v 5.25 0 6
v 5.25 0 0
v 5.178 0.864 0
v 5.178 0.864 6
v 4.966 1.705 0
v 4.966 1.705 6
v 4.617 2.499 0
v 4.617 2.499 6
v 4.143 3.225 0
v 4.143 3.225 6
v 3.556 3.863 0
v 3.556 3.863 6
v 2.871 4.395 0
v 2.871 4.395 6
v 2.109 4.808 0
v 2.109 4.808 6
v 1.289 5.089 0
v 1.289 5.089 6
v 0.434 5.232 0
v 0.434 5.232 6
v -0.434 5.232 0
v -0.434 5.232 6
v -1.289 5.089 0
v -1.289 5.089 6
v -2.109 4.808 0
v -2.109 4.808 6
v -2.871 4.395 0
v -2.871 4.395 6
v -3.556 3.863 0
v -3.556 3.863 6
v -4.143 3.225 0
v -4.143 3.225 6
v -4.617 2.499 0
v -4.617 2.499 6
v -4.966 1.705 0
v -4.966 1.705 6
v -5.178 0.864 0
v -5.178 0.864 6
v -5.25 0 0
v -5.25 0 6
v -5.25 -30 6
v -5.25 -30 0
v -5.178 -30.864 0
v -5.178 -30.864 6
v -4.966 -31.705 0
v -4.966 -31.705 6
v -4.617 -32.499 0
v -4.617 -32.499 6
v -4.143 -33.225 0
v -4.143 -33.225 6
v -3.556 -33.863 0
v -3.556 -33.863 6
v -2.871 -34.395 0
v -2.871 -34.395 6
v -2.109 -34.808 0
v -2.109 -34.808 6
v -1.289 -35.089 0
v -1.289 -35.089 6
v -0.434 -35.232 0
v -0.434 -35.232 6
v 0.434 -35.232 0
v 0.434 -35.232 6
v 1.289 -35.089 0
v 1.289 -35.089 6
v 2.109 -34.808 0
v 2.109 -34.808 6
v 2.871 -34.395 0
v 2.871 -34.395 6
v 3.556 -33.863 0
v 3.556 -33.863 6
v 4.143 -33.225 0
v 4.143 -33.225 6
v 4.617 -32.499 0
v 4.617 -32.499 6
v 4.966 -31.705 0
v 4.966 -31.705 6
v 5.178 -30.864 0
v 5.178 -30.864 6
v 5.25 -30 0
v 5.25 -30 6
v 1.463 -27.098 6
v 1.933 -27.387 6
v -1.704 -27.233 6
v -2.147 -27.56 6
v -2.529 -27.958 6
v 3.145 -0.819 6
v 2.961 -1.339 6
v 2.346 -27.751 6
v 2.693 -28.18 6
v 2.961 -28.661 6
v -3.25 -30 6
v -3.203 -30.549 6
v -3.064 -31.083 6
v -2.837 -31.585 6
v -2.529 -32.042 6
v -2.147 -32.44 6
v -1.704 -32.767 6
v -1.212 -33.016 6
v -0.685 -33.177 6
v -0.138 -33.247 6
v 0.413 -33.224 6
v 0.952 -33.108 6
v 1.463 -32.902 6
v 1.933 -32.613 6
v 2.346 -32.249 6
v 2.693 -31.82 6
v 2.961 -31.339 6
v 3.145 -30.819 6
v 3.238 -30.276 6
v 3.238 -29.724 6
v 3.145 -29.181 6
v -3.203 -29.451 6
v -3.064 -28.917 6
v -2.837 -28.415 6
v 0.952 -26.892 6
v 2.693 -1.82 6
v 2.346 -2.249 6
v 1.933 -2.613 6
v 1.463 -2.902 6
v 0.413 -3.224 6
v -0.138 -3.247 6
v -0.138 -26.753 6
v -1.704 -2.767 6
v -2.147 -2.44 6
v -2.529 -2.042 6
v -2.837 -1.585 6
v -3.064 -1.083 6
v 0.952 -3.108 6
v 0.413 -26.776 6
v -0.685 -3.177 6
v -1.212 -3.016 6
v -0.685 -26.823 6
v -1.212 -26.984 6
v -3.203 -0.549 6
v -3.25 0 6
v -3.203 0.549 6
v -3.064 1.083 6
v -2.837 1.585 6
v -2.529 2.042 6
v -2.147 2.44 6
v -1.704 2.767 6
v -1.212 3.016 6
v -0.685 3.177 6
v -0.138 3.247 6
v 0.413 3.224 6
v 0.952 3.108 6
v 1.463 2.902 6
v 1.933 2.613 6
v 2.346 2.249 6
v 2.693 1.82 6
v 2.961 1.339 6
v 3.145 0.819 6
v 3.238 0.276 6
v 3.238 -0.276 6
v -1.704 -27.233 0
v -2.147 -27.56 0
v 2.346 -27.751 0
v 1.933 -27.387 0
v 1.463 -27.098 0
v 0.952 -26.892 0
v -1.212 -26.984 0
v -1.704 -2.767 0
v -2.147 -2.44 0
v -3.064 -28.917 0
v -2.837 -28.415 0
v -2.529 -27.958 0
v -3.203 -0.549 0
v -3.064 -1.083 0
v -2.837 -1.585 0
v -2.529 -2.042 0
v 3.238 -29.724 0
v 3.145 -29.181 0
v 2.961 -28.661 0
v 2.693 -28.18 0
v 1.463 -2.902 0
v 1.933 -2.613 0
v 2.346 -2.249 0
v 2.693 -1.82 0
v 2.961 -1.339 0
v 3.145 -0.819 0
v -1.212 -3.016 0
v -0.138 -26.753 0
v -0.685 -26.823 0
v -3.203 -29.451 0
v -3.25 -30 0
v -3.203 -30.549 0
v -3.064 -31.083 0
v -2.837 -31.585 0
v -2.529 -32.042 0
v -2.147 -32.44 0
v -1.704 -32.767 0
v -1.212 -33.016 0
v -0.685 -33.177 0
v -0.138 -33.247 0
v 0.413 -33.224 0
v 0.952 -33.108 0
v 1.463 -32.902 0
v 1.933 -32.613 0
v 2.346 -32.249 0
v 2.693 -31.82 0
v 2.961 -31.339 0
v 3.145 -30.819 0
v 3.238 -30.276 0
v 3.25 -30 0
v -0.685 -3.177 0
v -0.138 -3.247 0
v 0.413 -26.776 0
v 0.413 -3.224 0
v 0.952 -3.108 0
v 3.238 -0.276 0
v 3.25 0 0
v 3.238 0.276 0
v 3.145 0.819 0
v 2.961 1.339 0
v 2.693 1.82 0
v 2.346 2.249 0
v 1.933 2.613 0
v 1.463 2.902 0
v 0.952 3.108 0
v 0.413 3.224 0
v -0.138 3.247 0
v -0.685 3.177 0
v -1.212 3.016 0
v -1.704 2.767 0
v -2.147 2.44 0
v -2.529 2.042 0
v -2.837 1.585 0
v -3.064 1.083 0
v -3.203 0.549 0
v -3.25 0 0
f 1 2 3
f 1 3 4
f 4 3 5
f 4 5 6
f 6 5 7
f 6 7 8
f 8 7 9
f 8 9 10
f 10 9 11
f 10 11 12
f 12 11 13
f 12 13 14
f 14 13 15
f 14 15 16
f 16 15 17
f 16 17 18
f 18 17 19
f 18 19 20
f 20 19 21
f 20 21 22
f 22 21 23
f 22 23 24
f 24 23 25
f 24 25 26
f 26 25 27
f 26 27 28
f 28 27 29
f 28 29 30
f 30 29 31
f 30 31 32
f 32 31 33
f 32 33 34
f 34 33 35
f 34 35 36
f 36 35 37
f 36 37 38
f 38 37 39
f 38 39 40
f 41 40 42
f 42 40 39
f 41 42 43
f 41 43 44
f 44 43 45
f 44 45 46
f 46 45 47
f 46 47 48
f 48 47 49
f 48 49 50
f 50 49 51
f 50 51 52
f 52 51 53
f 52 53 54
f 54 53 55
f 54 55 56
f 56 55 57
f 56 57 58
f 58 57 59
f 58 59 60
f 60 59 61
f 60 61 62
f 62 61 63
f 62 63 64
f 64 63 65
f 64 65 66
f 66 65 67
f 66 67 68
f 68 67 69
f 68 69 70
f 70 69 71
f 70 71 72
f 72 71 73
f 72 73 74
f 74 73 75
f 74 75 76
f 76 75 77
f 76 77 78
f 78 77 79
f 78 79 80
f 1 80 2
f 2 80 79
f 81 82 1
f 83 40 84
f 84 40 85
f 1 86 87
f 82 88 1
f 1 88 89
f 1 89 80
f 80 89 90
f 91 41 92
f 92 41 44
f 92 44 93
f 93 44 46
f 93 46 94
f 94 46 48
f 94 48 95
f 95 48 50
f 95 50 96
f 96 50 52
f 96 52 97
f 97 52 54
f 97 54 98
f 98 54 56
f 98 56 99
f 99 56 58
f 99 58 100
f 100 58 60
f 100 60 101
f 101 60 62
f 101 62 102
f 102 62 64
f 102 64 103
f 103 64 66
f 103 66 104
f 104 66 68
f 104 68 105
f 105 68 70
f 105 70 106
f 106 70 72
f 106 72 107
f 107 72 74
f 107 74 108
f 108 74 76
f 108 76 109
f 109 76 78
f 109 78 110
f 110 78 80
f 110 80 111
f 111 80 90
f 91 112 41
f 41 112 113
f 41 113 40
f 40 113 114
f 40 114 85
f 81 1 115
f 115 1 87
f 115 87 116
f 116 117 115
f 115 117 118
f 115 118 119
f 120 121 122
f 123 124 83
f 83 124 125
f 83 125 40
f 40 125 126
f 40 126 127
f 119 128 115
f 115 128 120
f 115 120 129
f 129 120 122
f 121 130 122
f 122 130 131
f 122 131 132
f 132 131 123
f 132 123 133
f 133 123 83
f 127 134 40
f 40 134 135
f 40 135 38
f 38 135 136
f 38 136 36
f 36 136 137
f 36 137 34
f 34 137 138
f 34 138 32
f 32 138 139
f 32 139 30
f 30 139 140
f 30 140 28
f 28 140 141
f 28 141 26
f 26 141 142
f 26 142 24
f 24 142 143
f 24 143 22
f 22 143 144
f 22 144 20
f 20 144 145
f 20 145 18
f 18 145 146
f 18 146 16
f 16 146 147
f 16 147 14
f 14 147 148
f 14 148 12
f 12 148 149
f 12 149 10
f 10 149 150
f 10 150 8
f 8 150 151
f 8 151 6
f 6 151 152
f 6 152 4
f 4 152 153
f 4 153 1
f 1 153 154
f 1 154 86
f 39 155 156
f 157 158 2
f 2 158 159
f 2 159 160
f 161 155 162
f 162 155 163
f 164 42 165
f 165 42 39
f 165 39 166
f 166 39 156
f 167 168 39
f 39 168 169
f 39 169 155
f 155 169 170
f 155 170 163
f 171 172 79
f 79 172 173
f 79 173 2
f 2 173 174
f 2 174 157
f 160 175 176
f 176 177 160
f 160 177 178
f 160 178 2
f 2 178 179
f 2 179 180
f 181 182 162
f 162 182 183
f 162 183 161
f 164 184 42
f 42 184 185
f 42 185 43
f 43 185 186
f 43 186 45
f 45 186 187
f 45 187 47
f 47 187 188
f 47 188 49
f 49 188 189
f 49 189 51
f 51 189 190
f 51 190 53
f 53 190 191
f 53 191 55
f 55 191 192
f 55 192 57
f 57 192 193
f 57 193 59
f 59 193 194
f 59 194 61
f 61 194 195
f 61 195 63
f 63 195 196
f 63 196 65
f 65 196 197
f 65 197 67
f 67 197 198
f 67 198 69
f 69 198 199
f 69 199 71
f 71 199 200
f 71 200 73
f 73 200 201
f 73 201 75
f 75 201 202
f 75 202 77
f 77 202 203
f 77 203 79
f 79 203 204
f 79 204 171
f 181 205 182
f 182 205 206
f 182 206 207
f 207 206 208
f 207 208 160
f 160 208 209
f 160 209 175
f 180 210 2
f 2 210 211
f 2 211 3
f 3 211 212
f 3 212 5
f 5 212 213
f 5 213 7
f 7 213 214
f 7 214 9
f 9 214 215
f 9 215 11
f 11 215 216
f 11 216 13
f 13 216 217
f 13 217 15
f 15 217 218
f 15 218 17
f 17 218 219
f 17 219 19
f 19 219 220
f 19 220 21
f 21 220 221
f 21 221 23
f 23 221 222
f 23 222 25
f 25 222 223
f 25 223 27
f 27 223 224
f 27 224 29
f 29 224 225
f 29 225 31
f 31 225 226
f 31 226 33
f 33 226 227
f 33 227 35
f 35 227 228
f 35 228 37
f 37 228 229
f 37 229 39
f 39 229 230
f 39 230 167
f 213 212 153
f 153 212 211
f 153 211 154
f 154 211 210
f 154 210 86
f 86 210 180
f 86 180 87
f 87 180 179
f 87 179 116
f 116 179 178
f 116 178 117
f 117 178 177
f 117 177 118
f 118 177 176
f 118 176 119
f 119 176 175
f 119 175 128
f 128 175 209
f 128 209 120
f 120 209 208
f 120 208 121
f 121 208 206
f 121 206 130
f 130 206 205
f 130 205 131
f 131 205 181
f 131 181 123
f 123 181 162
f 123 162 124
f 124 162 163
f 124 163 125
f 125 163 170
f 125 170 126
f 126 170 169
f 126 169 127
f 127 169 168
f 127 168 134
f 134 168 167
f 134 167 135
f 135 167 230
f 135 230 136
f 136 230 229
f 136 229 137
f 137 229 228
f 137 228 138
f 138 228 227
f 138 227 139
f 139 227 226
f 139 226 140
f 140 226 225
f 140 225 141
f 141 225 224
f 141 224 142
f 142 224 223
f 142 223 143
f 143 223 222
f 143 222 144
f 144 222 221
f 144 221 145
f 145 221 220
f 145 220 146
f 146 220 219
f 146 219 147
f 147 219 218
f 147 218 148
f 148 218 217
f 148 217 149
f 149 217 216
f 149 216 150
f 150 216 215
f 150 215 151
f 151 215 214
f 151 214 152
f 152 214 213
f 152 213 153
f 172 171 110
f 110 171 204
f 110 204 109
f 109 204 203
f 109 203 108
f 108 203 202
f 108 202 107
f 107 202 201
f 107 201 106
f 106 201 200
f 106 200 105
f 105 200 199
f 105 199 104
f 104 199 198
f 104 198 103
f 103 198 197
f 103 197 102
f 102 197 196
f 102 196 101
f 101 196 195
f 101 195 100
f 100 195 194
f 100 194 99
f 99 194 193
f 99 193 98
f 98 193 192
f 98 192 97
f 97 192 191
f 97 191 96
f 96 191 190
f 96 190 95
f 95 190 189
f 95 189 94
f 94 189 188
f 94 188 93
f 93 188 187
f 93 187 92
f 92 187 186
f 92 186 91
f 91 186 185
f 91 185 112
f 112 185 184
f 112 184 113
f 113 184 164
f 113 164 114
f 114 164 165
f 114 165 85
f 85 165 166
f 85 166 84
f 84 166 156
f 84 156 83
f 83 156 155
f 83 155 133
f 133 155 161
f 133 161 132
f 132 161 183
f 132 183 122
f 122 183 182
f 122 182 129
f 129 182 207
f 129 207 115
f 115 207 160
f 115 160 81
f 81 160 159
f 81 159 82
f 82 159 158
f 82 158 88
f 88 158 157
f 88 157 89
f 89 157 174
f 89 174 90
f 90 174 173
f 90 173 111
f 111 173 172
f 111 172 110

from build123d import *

# Parameters (mm, degrees)
BOSS_EXTRUDE1_DEPTH = 6
SKETCH1_3_R         = 3.25
CUT_EXTRUDE1_DEPTH  = 16


with BuildPart() as part:
    # Sketch1 → Boss-Extrude1 (new body)
    with BuildSketch(Plane.XY):
        with BuildLine():
            Line((-5.25, 0), (-5.25, -30))
            ThreePointArc((-5.25, -30), (0, -35.25), (5.25, -30))
            Line((5.25, -30), (5.25, 0))
            ThreePointArc((5.25, 0), (0, 5.25), (-5.25, 0))
        make_face()
    extrude(amount=BOSS_EXTRUDE1_DEPTH)

    # Sketch1<3> → Cut-Extrude1 (cut)
    with BuildSketch(Plane.XY):
        Circle(SKETCH1_3_R)
        with Locations((0, -30)):
            Circle(SKETCH1_3_R)
    extrude(amount=CUT_EXTRUDE1_DEPTH, mode=Mode.SUBTRACT)


solid = part.part
